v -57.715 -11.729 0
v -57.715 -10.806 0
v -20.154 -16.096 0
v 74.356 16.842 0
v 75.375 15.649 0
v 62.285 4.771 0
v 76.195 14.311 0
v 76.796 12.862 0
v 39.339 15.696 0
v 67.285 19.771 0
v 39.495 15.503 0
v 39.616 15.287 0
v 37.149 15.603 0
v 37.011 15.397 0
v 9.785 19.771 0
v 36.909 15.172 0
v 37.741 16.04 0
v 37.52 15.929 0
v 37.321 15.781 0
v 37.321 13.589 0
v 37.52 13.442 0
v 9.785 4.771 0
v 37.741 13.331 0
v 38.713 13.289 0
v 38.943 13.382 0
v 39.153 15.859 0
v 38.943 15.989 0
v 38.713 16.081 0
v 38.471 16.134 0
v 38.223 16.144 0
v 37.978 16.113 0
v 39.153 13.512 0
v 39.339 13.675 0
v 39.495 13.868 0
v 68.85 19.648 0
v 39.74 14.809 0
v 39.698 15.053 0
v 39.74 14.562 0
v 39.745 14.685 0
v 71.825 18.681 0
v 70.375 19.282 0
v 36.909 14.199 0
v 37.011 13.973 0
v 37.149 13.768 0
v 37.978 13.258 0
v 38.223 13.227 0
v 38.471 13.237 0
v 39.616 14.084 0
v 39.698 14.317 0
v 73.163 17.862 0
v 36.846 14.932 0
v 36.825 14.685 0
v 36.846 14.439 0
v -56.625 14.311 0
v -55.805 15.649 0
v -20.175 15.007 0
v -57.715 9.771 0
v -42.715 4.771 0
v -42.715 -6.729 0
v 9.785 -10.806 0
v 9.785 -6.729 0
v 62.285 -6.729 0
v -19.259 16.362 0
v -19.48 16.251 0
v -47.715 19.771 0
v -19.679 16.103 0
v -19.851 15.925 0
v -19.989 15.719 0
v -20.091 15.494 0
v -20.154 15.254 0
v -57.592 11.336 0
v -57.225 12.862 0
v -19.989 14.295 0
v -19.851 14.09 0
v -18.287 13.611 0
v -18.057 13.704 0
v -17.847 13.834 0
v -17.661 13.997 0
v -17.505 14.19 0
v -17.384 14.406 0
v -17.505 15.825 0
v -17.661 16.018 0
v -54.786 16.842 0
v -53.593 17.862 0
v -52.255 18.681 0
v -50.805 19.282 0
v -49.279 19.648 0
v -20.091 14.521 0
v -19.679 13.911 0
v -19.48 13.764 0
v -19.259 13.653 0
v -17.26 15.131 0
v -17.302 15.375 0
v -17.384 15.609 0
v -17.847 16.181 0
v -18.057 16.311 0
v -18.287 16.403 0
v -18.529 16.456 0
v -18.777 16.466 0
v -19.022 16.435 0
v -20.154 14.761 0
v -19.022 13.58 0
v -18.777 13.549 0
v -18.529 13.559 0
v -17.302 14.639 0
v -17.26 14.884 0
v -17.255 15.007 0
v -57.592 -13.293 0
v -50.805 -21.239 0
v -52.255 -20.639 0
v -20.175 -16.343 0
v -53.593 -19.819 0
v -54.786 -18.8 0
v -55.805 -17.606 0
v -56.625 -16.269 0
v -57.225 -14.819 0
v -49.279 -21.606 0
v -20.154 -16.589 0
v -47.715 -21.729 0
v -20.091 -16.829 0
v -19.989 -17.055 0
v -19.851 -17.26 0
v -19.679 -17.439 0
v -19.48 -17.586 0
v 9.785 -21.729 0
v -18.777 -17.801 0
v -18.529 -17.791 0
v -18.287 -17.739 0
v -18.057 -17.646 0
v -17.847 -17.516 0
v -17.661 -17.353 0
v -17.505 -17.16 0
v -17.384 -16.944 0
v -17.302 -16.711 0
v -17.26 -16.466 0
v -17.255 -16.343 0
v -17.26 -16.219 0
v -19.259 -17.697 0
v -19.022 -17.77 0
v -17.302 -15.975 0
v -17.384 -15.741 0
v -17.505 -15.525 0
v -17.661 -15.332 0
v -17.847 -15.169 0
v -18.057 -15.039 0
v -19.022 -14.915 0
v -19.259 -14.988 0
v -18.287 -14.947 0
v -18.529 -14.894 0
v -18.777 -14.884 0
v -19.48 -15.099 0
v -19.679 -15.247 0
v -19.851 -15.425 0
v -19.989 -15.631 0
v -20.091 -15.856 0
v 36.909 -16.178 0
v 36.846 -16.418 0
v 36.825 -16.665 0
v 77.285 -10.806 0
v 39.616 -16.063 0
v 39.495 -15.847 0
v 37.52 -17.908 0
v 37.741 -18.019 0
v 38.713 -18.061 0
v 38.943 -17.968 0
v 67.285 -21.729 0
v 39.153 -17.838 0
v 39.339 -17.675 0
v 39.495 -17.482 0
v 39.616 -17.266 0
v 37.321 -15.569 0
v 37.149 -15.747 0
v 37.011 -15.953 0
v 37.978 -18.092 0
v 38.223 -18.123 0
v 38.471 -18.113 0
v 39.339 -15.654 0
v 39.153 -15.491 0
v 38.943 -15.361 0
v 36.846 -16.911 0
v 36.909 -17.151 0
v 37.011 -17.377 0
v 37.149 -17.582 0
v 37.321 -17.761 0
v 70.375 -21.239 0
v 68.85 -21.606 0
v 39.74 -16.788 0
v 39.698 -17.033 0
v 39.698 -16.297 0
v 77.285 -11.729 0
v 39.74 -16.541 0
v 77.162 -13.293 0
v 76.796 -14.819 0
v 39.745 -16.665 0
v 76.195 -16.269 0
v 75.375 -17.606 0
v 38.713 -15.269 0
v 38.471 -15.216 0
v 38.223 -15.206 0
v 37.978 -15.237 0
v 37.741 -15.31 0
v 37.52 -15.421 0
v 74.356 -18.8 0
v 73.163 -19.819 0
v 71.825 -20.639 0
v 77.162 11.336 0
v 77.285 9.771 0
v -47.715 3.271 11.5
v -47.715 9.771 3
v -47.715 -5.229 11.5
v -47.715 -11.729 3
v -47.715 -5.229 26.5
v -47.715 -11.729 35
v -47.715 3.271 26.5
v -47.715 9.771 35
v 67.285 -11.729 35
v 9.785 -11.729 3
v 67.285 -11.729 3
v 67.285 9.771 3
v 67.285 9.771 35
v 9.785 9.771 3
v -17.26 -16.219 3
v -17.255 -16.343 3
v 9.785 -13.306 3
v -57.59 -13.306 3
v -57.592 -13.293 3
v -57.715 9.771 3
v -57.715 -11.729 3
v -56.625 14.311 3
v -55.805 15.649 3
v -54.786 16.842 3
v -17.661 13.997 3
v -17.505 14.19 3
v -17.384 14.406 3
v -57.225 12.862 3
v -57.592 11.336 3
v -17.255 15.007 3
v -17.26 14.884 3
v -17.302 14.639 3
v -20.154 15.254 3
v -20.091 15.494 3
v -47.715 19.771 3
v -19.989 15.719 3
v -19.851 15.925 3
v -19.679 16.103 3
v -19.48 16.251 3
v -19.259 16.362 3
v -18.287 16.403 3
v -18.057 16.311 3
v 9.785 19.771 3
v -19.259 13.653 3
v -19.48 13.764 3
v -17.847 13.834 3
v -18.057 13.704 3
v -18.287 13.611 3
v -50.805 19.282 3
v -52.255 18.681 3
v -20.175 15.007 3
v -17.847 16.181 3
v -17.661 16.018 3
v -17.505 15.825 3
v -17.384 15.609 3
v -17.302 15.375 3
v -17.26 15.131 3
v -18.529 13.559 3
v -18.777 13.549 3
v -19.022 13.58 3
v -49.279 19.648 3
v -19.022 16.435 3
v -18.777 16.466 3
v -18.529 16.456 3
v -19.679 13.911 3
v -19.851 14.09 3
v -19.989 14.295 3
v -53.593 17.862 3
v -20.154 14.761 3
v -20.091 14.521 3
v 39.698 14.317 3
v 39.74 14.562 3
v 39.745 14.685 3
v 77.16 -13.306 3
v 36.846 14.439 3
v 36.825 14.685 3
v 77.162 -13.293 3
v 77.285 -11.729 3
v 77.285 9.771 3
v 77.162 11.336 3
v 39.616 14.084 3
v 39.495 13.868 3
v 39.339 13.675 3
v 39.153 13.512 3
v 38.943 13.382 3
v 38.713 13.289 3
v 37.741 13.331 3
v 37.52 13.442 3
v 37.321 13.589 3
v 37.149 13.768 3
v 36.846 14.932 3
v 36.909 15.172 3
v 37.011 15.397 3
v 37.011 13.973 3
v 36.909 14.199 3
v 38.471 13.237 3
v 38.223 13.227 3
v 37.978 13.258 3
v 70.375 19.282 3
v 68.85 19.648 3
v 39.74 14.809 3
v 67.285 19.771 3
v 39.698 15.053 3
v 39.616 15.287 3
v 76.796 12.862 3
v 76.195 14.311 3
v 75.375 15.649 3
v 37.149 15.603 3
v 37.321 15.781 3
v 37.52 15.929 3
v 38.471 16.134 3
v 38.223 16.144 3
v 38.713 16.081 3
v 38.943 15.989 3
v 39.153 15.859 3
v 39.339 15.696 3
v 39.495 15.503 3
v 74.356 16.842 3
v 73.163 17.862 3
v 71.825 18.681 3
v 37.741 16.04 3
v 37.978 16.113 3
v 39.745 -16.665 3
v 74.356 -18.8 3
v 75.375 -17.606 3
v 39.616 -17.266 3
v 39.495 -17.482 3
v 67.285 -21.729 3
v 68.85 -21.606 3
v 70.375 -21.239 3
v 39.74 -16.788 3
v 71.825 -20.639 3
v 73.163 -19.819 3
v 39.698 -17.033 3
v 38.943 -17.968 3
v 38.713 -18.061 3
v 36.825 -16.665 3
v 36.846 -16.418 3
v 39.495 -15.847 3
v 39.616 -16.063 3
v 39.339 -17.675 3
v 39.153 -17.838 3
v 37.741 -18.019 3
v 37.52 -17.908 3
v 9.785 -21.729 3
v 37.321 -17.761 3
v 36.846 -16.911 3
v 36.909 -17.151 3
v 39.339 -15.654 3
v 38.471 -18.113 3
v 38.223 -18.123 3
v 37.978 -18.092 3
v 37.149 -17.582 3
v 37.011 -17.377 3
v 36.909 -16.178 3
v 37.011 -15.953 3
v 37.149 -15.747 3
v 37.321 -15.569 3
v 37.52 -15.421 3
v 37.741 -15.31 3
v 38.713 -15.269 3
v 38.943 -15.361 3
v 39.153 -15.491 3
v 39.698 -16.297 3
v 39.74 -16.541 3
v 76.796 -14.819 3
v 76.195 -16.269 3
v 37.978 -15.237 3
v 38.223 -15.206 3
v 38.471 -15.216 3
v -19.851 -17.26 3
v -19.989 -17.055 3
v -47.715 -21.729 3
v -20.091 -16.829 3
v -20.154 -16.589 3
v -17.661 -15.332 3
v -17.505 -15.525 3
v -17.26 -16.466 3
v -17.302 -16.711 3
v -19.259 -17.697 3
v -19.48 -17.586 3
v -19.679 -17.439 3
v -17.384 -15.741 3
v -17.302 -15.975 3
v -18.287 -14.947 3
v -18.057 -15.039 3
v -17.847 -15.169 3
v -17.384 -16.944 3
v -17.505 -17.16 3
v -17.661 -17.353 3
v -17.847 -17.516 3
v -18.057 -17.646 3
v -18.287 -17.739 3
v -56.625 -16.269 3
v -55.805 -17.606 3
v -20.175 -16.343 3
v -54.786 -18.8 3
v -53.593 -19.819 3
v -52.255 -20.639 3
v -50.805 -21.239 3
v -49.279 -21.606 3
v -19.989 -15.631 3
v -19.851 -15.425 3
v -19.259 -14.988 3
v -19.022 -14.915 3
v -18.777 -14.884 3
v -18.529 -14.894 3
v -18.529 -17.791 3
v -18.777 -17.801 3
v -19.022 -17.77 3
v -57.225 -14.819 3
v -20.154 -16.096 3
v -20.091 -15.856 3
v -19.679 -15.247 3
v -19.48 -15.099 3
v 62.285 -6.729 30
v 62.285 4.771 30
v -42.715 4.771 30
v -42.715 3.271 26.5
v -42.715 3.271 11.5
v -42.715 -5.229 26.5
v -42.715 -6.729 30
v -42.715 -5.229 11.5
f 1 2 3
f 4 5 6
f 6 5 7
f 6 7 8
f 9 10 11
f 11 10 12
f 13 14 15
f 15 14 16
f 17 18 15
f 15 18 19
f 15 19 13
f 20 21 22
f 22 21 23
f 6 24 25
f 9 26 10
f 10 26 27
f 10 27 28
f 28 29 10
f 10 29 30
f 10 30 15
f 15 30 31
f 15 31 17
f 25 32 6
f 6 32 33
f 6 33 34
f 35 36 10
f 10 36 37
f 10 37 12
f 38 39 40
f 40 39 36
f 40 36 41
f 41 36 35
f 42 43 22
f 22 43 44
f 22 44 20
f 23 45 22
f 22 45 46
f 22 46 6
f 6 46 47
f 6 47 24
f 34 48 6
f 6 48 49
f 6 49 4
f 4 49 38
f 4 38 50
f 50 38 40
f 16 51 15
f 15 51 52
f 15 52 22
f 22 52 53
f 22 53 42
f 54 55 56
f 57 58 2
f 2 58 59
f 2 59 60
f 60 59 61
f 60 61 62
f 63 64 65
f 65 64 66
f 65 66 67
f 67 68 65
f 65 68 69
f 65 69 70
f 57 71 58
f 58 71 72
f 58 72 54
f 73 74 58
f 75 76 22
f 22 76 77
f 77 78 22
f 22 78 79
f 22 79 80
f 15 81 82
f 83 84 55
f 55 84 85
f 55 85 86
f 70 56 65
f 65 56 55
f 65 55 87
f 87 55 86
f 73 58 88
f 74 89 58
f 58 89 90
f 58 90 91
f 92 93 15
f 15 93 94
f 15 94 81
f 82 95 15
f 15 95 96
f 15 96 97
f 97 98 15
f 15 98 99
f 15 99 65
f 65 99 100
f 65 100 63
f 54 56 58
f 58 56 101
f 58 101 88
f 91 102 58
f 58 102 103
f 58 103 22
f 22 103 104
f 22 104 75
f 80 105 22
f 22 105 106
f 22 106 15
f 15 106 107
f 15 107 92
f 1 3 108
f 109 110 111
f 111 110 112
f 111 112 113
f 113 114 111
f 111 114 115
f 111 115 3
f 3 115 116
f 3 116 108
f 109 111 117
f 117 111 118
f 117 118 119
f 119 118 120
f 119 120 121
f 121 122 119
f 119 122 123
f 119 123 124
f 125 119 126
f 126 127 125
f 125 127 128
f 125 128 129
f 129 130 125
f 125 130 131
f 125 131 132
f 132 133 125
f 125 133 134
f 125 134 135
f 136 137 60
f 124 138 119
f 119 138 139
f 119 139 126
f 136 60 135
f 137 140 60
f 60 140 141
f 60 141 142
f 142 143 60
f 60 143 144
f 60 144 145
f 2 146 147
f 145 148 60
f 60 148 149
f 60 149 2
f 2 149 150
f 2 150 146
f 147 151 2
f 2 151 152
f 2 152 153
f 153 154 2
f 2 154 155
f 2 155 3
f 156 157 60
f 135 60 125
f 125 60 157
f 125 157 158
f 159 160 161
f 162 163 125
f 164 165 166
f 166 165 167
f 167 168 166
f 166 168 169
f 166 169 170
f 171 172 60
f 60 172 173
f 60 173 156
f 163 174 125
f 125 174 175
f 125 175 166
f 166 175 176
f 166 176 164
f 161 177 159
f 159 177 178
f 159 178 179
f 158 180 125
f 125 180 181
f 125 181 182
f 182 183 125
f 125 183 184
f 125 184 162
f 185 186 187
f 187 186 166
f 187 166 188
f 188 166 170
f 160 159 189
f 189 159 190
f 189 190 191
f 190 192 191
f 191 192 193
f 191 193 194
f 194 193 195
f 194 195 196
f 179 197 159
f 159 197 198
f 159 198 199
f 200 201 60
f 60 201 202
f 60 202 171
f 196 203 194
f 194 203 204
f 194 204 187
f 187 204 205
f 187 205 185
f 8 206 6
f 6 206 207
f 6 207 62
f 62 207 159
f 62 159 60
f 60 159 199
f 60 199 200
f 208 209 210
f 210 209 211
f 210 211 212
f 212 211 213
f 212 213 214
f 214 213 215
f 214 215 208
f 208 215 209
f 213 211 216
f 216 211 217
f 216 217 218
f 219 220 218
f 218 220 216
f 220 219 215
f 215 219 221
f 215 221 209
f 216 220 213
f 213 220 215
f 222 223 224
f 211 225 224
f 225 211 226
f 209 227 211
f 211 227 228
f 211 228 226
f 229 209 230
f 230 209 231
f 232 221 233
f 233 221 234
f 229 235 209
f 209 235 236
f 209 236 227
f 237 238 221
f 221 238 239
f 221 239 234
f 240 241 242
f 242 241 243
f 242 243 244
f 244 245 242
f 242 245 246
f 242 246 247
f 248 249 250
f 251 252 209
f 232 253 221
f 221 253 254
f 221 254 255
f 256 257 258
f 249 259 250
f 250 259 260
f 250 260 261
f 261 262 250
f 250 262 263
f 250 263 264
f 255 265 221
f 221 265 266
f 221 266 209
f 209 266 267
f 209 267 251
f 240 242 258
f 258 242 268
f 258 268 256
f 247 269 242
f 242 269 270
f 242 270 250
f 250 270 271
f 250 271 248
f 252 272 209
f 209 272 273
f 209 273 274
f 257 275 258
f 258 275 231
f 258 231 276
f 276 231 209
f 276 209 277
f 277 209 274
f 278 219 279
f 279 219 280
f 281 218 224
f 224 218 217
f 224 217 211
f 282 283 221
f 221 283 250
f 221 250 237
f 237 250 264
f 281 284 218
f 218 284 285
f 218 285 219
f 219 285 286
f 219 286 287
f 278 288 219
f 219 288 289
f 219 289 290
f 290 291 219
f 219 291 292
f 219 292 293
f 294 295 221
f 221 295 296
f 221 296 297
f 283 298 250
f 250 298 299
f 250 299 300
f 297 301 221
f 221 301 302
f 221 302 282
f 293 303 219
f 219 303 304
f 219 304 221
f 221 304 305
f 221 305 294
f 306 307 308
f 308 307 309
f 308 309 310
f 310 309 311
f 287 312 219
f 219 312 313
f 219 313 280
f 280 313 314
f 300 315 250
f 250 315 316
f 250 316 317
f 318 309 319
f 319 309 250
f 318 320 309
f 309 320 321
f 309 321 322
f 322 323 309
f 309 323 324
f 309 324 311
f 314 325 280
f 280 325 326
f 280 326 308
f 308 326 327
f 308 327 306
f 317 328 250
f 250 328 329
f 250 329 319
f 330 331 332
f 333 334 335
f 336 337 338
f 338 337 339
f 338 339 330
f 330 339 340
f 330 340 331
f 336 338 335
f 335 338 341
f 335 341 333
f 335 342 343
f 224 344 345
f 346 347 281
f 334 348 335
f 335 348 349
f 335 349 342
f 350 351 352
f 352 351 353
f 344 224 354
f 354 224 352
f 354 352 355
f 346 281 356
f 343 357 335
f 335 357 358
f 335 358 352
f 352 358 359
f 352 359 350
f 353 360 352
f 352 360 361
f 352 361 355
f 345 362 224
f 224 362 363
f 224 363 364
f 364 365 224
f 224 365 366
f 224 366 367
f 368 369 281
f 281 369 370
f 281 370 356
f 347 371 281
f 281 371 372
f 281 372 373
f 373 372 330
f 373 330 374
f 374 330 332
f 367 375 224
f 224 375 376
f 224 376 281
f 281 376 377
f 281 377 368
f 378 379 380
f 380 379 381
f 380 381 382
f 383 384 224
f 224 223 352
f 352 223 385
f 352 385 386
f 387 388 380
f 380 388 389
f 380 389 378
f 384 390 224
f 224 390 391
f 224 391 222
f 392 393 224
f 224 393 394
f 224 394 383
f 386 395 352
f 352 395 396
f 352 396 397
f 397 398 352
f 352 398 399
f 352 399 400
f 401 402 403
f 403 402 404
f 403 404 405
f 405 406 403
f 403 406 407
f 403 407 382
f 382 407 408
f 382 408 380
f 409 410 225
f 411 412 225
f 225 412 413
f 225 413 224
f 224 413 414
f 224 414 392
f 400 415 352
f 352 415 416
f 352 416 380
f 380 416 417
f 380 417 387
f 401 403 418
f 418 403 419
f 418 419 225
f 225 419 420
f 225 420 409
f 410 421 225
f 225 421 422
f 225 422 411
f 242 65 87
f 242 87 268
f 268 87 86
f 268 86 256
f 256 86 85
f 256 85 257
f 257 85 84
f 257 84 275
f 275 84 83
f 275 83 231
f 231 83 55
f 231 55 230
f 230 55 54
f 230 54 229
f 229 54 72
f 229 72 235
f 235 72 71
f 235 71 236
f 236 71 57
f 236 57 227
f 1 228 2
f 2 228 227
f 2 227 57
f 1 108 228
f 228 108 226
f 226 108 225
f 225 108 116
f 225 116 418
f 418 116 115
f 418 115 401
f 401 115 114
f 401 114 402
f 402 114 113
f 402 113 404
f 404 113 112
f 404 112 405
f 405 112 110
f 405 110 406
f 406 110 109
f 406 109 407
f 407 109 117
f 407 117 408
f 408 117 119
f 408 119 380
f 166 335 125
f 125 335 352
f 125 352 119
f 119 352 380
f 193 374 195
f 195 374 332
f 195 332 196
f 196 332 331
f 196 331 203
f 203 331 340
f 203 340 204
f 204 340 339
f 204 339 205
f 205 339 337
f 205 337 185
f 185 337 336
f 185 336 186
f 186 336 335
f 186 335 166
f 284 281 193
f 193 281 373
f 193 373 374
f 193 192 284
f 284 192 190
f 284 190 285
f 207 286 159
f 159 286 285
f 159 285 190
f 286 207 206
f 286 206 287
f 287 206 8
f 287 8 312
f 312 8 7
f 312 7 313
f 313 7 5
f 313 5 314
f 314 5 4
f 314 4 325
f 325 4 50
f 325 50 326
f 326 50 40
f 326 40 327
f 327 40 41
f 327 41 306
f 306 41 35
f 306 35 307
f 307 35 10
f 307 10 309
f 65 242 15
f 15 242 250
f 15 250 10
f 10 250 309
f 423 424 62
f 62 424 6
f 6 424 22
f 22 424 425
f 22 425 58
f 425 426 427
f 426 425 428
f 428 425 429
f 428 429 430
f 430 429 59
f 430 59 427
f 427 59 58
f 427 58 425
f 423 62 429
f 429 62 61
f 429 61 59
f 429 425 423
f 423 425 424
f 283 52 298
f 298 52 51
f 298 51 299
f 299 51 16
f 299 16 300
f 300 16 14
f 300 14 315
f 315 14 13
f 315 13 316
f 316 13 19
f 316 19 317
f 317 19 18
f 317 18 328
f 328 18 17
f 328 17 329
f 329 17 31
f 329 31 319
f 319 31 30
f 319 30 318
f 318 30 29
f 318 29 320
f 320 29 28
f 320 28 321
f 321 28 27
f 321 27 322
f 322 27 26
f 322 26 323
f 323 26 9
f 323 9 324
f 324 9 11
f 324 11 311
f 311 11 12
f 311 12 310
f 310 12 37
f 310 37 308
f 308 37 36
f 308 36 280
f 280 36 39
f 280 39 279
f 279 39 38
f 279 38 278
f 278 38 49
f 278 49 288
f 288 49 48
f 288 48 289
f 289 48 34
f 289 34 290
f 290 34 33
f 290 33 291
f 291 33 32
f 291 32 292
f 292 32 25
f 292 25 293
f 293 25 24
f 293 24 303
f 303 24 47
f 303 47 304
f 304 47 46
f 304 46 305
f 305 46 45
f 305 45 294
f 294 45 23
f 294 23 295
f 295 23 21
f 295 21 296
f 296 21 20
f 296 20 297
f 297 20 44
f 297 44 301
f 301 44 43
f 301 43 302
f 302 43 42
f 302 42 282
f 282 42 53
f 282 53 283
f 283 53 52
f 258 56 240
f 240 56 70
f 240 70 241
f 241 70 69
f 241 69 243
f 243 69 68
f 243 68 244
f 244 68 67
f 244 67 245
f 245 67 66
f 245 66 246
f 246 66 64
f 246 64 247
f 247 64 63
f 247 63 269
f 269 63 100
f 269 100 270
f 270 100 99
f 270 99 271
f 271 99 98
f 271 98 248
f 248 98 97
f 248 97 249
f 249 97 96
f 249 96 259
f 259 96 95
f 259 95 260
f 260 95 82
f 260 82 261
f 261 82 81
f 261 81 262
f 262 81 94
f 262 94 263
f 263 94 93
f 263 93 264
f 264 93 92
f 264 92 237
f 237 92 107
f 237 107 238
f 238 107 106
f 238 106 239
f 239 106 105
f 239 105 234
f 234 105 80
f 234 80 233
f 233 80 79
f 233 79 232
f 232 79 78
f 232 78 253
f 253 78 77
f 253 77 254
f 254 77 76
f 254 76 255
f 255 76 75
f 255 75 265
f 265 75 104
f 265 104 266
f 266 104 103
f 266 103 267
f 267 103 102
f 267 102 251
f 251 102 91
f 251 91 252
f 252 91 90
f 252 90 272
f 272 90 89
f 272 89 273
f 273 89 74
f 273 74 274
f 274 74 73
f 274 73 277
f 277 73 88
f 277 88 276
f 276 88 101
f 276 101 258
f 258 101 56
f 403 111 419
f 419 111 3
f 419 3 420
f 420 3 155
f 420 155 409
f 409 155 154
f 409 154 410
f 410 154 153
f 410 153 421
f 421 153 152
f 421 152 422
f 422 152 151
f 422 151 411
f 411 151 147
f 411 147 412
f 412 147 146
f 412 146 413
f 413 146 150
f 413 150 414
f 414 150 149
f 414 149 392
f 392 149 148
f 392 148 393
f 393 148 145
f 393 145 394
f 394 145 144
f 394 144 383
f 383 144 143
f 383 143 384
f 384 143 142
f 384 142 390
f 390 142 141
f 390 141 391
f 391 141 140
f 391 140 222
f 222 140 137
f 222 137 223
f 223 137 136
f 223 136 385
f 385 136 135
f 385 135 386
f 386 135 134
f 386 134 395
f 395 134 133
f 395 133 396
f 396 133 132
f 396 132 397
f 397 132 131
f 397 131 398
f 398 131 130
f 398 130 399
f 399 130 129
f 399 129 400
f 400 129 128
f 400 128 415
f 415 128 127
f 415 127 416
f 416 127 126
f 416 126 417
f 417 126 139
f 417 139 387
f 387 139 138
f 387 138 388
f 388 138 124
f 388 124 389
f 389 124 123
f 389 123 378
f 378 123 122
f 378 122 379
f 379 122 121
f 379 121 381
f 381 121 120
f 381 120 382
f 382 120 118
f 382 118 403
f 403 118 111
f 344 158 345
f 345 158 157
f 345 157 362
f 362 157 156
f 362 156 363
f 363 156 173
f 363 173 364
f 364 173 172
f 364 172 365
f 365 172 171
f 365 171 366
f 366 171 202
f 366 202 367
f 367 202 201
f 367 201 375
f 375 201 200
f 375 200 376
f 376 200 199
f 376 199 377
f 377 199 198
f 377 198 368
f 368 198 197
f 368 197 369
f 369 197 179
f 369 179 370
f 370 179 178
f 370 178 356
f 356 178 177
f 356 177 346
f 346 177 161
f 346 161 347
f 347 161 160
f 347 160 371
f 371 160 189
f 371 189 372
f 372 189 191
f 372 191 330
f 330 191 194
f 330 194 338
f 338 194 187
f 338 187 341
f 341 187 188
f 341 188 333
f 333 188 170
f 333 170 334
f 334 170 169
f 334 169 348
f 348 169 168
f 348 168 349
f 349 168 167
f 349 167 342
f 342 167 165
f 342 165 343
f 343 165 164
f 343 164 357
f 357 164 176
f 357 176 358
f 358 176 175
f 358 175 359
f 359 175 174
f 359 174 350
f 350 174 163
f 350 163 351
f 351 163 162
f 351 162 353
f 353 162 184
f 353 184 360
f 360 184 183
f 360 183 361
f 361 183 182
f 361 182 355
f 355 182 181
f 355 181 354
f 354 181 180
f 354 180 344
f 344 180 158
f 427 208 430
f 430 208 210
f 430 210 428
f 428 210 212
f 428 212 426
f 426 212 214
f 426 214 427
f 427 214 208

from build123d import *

# Parameters (mm, degrees)
SKETCH2_W           = 115
SKETCH2_H           = 21.5
BOSS_EXTRUDE1_DEPTH = 35
BOSS_EXTRUDE2_DEPTH = 3
SKETCH8_W           = 105
SKETCH8_H           = 11.5
CUT_EXTRUDE2_DEPTH  = 30
SKETCH9_R           = 1.46
CUT_EXTRUDE3_DEPTH  = 33
SKETCH10_W          = 15
SKETCH10_H          = 8.5
CUT_EXTRUDE4_DEPTH  = 88


with BuildPart() as part:
    # Sketch2 → Boss-Extrude1 (new body)
    with BuildSketch(Plane.XY):
        with Locations((9.785277127, -0.97863388)):
            Rectangle(SKETCH2_W, SKETCH2_H)
    extrude(amount=BOSS_EXTRUDE1_DEPTH)

    # Sketch7 → Boss-Extrude2 (add)
    with BuildSketch(Plane.XY):
        with BuildLine():
            Line((-47.714722873, 19.77136612), (67.285277127, 19.77136612))
            ThreePointArc((67.285277127, 19.77136612), (74.356344939, 16.842433932), (77.285277127, 9.77136612))
            Line((77.285277127, 9.77136612), (77.285277127, -11.72863388))
            ThreePointArc((77.285277127, -11.72863388), (74.356344939, -18.799701692), (67.285277127, -21.72863388))
            Line((67.285277127, -21.72863388), (-47.714722873, -21.72863388))
            ThreePointArc((-47.714722873, -21.72863388), (-54.785790685, -18.799701692), (-57.714722873, -11.72863388))
            Line((-57.714722873, -11.72863388), (-57.714722873, 9.77136612))
            ThreePointArc((-57.714722873, 9.77136612), (-54.785790685, 16.842433932), (-47.714722873, 19.77136612))
        make_face()
    extrude(amount=BOSS_EXTRUDE2_DEPTH)

    # Sketch8 → Cut-Extrude2 (cut)
    with BuildSketch(Plane.XY):
        with Locations((9.785277127, -0.97863388)):
            Rectangle(SKETCH8_W, SKETCH8_H)
    extrude(amount=CUT_EXTRUDE2_DEPTH, mode=Mode.SUBTRACT)

    # Sketch9 → Cut-Extrude3 (cut)
    with BuildSketch(Plane.XY):
        with Locations((38.285277127, 14.68536612)):
            Circle(SKETCH9_R)
        with Locations((-18.714722873, 15.00736612)):
            Circle(SKETCH9_R)
        with Locations((-18.714722873, -16.34263388)):
            Circle(SKETCH9_R)
        with Locations((38.285277127, -16.66463388)):
            Circle(SKETCH9_R)
    extrude(amount=CUT_EXTRUDE3_DEPTH, mode=Mode.SUBTRACT)

    # Sketch10 → Cut-Extrude4 (cut)
    with BuildSketch(Plane(origin=(0, 0, 0), x_dir=(0, 0, -1), z_dir=(1, 0, 0))):
        with Locations((-19, -0.97863388)):
            Rectangle(SKETCH10_W, SKETCH10_H)
    extrude(amount=-CUT_EXTRUDE4_DEPTH, mode=Mode.SUBTRACT)


solid = part.part
